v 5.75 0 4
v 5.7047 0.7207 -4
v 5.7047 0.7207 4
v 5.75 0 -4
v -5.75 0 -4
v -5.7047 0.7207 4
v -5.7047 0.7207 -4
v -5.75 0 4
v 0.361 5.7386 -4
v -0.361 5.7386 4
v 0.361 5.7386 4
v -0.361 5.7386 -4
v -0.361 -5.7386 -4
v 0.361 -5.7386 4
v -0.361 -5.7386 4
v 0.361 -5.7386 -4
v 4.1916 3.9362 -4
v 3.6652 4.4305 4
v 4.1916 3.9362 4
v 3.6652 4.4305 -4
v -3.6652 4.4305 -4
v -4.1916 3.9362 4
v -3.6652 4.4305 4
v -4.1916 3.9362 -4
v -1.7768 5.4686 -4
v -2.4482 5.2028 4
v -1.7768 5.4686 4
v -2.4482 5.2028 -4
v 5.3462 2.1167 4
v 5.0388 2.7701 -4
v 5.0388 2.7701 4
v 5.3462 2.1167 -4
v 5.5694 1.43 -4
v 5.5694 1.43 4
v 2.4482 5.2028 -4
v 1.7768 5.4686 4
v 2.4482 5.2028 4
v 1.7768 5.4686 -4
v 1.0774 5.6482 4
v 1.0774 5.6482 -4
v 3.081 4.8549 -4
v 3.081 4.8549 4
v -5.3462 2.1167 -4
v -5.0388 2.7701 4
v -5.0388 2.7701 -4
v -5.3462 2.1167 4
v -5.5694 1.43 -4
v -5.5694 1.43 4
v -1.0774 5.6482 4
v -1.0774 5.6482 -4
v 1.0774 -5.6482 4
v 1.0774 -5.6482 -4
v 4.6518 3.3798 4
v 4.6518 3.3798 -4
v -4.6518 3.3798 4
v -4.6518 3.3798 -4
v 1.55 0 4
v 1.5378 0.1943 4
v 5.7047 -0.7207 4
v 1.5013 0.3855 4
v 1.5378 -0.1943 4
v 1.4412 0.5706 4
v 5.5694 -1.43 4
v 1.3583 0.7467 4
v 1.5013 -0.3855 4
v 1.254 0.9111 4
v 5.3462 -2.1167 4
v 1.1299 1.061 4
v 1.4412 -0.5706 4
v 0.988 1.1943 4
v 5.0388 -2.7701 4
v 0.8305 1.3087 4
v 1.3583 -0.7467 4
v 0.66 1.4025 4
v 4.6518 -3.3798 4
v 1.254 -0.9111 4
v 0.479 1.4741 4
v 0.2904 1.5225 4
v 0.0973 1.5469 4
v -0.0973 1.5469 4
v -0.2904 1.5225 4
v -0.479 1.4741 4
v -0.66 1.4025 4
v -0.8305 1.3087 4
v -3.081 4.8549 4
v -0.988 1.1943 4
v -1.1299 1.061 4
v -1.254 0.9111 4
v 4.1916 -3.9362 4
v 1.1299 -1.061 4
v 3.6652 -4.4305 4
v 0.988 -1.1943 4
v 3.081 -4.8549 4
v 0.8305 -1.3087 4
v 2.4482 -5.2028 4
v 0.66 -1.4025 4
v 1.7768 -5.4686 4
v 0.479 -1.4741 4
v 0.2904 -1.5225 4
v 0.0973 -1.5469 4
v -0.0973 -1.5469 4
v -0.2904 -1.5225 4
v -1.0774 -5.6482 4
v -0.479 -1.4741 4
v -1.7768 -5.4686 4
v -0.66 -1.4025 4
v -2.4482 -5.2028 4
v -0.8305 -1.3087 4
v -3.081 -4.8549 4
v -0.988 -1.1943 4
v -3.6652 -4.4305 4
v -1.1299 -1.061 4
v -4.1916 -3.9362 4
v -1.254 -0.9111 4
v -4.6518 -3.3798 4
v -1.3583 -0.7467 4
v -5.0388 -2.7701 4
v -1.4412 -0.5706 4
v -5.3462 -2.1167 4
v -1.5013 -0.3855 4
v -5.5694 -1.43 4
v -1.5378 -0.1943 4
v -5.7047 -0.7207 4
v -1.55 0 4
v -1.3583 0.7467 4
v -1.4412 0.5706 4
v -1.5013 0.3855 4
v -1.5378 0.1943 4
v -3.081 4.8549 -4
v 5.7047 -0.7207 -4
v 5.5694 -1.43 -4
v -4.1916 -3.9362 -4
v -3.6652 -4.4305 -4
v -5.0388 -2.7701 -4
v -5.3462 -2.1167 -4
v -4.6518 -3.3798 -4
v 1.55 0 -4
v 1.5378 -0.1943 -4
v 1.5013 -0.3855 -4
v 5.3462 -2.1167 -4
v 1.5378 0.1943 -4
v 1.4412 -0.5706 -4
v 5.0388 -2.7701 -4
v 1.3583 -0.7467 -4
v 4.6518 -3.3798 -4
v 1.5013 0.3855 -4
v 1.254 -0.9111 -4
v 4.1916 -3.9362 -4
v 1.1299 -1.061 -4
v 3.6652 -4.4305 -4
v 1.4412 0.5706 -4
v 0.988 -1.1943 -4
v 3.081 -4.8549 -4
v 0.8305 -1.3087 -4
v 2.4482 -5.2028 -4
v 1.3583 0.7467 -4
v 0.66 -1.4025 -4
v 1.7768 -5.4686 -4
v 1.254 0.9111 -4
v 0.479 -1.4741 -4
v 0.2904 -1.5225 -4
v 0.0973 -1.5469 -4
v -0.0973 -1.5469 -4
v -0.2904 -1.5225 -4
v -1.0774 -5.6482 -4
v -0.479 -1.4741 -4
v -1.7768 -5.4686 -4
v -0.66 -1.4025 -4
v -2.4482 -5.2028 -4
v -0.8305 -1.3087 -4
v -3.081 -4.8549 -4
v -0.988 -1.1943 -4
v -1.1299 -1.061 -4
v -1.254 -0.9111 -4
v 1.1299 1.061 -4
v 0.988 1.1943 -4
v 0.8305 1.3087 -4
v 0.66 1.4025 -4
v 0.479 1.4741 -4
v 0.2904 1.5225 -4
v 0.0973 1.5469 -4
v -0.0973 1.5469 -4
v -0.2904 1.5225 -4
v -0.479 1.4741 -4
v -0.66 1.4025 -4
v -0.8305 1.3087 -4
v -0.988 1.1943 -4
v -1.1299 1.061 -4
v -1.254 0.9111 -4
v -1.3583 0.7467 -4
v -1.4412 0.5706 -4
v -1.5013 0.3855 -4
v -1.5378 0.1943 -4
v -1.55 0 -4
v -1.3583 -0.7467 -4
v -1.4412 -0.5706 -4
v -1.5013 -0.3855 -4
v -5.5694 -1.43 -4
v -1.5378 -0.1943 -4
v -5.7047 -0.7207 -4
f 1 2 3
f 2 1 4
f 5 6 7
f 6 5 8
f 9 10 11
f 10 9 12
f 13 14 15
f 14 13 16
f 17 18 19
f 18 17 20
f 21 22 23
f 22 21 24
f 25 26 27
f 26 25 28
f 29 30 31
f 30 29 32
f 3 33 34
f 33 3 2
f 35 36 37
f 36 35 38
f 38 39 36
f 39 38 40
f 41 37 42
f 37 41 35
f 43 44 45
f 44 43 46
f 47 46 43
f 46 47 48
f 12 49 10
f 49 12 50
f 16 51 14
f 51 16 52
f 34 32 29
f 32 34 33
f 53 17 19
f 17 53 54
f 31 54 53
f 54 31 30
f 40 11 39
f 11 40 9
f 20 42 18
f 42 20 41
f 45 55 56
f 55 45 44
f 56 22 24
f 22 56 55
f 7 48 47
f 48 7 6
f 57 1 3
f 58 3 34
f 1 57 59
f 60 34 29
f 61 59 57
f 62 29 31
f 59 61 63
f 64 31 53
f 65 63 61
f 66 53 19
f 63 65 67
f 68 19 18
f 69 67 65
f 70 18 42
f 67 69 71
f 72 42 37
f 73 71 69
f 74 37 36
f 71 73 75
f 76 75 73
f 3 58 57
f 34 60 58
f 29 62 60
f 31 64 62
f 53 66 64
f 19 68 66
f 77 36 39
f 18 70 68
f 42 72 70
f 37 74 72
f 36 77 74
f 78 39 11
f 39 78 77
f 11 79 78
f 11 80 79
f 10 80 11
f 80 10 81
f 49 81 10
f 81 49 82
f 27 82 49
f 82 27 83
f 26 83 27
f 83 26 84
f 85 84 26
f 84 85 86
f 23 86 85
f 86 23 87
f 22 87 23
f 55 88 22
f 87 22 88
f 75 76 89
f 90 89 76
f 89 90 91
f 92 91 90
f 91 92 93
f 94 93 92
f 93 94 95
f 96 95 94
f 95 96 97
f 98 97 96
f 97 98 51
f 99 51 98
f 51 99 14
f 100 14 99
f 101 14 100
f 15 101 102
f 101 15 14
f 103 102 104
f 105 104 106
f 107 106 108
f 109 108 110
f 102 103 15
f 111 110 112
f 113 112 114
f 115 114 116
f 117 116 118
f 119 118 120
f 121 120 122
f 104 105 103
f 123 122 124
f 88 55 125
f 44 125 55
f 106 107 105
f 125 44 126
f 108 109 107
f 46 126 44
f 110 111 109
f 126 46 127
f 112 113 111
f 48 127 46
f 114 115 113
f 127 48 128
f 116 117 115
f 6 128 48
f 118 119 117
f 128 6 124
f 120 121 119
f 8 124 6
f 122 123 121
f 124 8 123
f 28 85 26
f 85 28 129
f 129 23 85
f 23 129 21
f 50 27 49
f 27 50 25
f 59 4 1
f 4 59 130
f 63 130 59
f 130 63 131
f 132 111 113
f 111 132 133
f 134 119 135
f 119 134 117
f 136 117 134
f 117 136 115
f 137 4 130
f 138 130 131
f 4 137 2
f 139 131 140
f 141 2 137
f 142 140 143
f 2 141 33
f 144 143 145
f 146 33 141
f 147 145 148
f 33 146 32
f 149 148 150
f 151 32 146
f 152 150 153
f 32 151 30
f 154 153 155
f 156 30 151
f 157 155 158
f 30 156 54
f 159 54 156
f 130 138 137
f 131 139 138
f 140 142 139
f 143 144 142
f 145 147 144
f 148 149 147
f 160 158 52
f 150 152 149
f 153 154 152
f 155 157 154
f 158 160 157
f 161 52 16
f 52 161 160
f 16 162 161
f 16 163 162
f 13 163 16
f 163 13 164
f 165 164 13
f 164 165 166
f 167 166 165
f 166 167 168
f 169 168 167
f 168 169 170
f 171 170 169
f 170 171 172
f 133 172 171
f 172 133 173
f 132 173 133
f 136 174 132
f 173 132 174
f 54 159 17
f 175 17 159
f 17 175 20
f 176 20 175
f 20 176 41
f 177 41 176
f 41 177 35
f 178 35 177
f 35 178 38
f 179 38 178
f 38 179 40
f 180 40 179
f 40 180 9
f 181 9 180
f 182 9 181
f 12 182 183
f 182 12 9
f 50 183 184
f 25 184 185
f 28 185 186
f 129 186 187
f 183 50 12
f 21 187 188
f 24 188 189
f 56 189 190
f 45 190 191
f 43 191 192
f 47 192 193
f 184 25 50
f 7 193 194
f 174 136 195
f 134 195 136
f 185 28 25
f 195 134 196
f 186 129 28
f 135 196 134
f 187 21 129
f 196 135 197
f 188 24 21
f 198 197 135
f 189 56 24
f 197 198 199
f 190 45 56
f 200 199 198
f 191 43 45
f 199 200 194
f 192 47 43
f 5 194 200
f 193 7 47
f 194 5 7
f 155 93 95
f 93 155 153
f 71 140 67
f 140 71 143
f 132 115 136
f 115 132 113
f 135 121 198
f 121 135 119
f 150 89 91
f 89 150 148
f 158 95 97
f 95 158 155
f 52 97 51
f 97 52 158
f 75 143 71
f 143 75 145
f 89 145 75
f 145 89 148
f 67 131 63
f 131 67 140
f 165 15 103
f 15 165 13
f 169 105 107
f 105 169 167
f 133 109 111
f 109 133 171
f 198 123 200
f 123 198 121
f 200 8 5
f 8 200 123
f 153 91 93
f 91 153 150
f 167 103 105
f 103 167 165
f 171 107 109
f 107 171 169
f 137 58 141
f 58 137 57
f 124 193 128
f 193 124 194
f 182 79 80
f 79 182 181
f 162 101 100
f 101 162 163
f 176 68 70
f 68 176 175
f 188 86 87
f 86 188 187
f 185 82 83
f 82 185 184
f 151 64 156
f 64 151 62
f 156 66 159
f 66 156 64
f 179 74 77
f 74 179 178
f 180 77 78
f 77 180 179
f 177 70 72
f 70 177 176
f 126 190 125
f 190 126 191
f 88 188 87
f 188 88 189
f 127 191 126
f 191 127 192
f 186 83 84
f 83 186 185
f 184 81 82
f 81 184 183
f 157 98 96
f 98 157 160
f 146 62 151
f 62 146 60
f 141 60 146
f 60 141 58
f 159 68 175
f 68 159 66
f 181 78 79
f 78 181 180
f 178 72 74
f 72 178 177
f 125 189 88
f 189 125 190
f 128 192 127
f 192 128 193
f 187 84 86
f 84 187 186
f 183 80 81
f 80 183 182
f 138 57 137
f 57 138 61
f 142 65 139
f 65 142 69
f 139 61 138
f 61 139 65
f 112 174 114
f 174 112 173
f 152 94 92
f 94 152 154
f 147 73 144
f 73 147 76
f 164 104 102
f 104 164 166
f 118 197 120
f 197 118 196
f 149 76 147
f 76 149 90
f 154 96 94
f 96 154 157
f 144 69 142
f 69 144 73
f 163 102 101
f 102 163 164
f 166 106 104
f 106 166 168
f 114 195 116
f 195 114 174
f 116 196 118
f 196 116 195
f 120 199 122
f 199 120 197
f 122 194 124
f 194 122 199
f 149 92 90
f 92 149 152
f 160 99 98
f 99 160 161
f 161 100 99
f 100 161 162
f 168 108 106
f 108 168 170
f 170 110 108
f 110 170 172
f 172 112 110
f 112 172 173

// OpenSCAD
$fn = 50;


difference() {
	union() {
		translate(v = [0, 0, -4.0000000000]) {
			cylinder(h = 8, r = 5.7500000000);
		}
	}
	union() {
		translate(v = [0, 0, -100.0000000000]) {
			cylinder(h = 200, r = 1.5500000000);
		}
	}
}
